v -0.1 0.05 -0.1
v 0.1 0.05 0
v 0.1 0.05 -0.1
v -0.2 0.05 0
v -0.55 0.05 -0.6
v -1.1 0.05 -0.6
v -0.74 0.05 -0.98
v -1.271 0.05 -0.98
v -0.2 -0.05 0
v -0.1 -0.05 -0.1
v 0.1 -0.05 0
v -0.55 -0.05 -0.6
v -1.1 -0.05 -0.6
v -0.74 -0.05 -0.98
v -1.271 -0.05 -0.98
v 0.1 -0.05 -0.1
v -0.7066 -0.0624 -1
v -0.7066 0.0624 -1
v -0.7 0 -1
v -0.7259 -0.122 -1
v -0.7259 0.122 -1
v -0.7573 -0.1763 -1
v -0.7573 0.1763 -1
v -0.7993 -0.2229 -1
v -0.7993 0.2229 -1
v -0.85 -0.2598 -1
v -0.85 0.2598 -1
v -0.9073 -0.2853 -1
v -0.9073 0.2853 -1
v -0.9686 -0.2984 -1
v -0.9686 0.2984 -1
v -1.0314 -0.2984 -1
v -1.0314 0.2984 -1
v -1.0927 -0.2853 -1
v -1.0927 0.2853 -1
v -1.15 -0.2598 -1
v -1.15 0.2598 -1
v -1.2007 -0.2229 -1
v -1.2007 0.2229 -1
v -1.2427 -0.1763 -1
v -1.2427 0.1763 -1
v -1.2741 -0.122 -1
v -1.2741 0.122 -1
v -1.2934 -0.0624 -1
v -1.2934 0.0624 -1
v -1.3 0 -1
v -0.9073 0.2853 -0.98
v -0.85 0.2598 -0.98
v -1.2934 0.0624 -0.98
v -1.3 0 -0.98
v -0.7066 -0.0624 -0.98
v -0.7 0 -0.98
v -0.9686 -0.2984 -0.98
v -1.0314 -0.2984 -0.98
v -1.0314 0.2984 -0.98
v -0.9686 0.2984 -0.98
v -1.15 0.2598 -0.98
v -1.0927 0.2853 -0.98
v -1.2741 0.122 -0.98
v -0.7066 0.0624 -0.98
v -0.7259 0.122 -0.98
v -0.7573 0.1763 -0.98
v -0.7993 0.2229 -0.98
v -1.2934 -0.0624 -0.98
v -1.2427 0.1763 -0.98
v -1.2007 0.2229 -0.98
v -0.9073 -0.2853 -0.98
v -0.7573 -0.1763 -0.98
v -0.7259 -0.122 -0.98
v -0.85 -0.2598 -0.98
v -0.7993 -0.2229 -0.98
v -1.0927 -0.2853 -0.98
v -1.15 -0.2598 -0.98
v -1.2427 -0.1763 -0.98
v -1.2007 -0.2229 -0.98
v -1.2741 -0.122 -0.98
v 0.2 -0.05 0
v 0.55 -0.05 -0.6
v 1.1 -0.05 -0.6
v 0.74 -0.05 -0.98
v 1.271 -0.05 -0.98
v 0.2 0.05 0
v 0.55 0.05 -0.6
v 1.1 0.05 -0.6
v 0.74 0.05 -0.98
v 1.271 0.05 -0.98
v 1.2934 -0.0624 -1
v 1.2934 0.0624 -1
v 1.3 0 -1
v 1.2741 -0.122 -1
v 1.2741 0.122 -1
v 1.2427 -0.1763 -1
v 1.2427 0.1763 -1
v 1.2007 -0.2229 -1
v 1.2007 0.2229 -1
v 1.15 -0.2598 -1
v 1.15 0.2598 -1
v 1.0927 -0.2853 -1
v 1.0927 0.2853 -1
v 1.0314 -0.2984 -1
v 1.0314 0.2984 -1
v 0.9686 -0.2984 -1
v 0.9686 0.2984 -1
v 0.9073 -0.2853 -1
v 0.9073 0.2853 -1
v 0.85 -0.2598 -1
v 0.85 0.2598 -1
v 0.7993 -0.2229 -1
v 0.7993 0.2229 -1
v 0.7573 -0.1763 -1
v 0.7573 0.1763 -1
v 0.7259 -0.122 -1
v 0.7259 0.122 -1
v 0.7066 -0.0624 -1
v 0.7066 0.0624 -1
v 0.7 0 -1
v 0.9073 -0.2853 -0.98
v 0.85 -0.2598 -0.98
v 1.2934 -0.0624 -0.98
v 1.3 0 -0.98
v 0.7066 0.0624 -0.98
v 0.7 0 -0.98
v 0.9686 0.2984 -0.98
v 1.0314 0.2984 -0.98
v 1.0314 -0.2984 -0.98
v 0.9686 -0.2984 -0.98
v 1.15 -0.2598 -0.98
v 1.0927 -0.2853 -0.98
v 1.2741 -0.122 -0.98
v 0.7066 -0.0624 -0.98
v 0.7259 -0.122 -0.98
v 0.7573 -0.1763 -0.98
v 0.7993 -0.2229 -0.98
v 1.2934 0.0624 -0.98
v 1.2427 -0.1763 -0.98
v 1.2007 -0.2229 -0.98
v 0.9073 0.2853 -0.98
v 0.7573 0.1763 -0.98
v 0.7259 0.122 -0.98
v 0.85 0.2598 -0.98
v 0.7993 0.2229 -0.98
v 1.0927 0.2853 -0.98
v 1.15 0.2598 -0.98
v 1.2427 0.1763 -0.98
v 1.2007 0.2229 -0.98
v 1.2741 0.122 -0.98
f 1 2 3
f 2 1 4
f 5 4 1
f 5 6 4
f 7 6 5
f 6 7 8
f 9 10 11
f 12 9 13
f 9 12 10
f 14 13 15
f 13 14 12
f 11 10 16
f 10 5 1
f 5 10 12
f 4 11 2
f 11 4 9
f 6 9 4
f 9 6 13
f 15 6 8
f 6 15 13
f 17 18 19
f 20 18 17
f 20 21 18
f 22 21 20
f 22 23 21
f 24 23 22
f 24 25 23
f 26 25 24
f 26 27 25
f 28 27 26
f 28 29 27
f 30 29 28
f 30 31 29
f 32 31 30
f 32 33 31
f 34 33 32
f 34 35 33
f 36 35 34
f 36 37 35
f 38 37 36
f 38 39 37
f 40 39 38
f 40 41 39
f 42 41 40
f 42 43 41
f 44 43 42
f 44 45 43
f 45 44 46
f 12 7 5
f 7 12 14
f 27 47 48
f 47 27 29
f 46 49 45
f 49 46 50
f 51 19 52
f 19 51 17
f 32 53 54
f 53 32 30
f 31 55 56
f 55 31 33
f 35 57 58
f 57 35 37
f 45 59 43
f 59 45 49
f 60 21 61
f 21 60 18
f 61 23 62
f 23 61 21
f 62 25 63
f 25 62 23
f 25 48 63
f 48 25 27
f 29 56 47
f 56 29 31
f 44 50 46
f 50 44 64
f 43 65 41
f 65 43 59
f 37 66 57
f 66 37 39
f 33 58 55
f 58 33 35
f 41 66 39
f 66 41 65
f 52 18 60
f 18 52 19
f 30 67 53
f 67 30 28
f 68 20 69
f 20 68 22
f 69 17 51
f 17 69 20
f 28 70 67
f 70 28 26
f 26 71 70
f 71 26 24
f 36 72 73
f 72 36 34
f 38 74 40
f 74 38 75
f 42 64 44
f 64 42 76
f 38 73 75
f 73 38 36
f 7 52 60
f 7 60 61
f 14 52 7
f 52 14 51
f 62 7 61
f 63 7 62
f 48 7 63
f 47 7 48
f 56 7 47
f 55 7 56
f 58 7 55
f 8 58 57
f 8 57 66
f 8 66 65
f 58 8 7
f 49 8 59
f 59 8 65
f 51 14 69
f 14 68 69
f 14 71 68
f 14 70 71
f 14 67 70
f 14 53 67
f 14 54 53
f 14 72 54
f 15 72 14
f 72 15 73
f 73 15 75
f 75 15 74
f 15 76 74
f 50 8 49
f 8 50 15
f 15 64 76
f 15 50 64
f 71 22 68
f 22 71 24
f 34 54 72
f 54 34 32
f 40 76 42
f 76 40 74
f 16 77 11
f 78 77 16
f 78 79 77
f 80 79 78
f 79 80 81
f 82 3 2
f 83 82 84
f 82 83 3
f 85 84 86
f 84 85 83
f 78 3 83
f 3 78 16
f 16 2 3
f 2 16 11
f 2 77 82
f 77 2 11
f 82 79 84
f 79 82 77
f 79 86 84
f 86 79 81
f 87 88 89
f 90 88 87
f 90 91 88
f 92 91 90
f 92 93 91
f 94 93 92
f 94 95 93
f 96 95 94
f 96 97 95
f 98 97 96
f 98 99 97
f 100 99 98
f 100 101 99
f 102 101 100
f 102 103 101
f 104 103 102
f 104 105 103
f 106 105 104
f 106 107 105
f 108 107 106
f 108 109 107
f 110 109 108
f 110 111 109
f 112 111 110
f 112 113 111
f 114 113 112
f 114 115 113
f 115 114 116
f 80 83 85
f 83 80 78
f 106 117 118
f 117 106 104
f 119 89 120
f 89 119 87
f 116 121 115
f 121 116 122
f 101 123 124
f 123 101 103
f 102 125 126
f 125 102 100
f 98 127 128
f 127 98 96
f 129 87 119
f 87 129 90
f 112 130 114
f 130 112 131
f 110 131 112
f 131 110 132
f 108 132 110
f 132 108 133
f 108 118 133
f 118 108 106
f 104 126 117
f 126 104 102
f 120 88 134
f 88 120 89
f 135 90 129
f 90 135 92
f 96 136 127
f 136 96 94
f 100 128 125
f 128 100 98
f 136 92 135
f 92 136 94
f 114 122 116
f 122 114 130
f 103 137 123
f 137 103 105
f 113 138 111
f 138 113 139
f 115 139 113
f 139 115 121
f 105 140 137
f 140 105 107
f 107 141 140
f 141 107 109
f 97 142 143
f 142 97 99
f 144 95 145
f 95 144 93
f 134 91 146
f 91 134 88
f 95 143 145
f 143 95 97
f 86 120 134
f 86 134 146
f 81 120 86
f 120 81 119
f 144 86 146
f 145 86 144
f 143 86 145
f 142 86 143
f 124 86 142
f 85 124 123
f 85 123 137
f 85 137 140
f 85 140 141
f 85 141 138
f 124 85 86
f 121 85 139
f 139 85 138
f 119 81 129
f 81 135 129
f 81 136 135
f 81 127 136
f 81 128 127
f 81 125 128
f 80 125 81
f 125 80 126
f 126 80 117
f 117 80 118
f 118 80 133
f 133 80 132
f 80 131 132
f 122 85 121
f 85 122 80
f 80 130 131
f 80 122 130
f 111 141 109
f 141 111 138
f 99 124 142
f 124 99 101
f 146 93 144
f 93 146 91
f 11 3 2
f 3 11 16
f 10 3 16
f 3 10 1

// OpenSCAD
//----------------------------------------------
// Freeform Support bridge
//----------------------------------------------
$fn=30;

translate([-0.5,-0.5,-1.0]) bridge();

module bridge(){
    union() {
       translate([0.5,0.5,0.95]) cube(size = [0.2,0.1,0.1], center = true);
       translate([-0.1,0,0.0]) pilar();
       translate([1.1,1,0.0]) rotate([0, 0, 180]) pilar();
    }
}
module pilar(){
union() {
    translate([0.5,0.55,0.0]) rotate([90, 0, 0]) {
			linear_extrude(height=0.1) {
				polygon(points=[[-0.65,0],[-1.18,0],[-1,0.4],[-0.1,1],[0,1],[0,0.9],[-0.45,0.4]], convexity=1);
			}
		}
    translate([-0.4,0.5,0.0]) cylinder ( h = 0.02, r = 0.3, center = false);
}
}
